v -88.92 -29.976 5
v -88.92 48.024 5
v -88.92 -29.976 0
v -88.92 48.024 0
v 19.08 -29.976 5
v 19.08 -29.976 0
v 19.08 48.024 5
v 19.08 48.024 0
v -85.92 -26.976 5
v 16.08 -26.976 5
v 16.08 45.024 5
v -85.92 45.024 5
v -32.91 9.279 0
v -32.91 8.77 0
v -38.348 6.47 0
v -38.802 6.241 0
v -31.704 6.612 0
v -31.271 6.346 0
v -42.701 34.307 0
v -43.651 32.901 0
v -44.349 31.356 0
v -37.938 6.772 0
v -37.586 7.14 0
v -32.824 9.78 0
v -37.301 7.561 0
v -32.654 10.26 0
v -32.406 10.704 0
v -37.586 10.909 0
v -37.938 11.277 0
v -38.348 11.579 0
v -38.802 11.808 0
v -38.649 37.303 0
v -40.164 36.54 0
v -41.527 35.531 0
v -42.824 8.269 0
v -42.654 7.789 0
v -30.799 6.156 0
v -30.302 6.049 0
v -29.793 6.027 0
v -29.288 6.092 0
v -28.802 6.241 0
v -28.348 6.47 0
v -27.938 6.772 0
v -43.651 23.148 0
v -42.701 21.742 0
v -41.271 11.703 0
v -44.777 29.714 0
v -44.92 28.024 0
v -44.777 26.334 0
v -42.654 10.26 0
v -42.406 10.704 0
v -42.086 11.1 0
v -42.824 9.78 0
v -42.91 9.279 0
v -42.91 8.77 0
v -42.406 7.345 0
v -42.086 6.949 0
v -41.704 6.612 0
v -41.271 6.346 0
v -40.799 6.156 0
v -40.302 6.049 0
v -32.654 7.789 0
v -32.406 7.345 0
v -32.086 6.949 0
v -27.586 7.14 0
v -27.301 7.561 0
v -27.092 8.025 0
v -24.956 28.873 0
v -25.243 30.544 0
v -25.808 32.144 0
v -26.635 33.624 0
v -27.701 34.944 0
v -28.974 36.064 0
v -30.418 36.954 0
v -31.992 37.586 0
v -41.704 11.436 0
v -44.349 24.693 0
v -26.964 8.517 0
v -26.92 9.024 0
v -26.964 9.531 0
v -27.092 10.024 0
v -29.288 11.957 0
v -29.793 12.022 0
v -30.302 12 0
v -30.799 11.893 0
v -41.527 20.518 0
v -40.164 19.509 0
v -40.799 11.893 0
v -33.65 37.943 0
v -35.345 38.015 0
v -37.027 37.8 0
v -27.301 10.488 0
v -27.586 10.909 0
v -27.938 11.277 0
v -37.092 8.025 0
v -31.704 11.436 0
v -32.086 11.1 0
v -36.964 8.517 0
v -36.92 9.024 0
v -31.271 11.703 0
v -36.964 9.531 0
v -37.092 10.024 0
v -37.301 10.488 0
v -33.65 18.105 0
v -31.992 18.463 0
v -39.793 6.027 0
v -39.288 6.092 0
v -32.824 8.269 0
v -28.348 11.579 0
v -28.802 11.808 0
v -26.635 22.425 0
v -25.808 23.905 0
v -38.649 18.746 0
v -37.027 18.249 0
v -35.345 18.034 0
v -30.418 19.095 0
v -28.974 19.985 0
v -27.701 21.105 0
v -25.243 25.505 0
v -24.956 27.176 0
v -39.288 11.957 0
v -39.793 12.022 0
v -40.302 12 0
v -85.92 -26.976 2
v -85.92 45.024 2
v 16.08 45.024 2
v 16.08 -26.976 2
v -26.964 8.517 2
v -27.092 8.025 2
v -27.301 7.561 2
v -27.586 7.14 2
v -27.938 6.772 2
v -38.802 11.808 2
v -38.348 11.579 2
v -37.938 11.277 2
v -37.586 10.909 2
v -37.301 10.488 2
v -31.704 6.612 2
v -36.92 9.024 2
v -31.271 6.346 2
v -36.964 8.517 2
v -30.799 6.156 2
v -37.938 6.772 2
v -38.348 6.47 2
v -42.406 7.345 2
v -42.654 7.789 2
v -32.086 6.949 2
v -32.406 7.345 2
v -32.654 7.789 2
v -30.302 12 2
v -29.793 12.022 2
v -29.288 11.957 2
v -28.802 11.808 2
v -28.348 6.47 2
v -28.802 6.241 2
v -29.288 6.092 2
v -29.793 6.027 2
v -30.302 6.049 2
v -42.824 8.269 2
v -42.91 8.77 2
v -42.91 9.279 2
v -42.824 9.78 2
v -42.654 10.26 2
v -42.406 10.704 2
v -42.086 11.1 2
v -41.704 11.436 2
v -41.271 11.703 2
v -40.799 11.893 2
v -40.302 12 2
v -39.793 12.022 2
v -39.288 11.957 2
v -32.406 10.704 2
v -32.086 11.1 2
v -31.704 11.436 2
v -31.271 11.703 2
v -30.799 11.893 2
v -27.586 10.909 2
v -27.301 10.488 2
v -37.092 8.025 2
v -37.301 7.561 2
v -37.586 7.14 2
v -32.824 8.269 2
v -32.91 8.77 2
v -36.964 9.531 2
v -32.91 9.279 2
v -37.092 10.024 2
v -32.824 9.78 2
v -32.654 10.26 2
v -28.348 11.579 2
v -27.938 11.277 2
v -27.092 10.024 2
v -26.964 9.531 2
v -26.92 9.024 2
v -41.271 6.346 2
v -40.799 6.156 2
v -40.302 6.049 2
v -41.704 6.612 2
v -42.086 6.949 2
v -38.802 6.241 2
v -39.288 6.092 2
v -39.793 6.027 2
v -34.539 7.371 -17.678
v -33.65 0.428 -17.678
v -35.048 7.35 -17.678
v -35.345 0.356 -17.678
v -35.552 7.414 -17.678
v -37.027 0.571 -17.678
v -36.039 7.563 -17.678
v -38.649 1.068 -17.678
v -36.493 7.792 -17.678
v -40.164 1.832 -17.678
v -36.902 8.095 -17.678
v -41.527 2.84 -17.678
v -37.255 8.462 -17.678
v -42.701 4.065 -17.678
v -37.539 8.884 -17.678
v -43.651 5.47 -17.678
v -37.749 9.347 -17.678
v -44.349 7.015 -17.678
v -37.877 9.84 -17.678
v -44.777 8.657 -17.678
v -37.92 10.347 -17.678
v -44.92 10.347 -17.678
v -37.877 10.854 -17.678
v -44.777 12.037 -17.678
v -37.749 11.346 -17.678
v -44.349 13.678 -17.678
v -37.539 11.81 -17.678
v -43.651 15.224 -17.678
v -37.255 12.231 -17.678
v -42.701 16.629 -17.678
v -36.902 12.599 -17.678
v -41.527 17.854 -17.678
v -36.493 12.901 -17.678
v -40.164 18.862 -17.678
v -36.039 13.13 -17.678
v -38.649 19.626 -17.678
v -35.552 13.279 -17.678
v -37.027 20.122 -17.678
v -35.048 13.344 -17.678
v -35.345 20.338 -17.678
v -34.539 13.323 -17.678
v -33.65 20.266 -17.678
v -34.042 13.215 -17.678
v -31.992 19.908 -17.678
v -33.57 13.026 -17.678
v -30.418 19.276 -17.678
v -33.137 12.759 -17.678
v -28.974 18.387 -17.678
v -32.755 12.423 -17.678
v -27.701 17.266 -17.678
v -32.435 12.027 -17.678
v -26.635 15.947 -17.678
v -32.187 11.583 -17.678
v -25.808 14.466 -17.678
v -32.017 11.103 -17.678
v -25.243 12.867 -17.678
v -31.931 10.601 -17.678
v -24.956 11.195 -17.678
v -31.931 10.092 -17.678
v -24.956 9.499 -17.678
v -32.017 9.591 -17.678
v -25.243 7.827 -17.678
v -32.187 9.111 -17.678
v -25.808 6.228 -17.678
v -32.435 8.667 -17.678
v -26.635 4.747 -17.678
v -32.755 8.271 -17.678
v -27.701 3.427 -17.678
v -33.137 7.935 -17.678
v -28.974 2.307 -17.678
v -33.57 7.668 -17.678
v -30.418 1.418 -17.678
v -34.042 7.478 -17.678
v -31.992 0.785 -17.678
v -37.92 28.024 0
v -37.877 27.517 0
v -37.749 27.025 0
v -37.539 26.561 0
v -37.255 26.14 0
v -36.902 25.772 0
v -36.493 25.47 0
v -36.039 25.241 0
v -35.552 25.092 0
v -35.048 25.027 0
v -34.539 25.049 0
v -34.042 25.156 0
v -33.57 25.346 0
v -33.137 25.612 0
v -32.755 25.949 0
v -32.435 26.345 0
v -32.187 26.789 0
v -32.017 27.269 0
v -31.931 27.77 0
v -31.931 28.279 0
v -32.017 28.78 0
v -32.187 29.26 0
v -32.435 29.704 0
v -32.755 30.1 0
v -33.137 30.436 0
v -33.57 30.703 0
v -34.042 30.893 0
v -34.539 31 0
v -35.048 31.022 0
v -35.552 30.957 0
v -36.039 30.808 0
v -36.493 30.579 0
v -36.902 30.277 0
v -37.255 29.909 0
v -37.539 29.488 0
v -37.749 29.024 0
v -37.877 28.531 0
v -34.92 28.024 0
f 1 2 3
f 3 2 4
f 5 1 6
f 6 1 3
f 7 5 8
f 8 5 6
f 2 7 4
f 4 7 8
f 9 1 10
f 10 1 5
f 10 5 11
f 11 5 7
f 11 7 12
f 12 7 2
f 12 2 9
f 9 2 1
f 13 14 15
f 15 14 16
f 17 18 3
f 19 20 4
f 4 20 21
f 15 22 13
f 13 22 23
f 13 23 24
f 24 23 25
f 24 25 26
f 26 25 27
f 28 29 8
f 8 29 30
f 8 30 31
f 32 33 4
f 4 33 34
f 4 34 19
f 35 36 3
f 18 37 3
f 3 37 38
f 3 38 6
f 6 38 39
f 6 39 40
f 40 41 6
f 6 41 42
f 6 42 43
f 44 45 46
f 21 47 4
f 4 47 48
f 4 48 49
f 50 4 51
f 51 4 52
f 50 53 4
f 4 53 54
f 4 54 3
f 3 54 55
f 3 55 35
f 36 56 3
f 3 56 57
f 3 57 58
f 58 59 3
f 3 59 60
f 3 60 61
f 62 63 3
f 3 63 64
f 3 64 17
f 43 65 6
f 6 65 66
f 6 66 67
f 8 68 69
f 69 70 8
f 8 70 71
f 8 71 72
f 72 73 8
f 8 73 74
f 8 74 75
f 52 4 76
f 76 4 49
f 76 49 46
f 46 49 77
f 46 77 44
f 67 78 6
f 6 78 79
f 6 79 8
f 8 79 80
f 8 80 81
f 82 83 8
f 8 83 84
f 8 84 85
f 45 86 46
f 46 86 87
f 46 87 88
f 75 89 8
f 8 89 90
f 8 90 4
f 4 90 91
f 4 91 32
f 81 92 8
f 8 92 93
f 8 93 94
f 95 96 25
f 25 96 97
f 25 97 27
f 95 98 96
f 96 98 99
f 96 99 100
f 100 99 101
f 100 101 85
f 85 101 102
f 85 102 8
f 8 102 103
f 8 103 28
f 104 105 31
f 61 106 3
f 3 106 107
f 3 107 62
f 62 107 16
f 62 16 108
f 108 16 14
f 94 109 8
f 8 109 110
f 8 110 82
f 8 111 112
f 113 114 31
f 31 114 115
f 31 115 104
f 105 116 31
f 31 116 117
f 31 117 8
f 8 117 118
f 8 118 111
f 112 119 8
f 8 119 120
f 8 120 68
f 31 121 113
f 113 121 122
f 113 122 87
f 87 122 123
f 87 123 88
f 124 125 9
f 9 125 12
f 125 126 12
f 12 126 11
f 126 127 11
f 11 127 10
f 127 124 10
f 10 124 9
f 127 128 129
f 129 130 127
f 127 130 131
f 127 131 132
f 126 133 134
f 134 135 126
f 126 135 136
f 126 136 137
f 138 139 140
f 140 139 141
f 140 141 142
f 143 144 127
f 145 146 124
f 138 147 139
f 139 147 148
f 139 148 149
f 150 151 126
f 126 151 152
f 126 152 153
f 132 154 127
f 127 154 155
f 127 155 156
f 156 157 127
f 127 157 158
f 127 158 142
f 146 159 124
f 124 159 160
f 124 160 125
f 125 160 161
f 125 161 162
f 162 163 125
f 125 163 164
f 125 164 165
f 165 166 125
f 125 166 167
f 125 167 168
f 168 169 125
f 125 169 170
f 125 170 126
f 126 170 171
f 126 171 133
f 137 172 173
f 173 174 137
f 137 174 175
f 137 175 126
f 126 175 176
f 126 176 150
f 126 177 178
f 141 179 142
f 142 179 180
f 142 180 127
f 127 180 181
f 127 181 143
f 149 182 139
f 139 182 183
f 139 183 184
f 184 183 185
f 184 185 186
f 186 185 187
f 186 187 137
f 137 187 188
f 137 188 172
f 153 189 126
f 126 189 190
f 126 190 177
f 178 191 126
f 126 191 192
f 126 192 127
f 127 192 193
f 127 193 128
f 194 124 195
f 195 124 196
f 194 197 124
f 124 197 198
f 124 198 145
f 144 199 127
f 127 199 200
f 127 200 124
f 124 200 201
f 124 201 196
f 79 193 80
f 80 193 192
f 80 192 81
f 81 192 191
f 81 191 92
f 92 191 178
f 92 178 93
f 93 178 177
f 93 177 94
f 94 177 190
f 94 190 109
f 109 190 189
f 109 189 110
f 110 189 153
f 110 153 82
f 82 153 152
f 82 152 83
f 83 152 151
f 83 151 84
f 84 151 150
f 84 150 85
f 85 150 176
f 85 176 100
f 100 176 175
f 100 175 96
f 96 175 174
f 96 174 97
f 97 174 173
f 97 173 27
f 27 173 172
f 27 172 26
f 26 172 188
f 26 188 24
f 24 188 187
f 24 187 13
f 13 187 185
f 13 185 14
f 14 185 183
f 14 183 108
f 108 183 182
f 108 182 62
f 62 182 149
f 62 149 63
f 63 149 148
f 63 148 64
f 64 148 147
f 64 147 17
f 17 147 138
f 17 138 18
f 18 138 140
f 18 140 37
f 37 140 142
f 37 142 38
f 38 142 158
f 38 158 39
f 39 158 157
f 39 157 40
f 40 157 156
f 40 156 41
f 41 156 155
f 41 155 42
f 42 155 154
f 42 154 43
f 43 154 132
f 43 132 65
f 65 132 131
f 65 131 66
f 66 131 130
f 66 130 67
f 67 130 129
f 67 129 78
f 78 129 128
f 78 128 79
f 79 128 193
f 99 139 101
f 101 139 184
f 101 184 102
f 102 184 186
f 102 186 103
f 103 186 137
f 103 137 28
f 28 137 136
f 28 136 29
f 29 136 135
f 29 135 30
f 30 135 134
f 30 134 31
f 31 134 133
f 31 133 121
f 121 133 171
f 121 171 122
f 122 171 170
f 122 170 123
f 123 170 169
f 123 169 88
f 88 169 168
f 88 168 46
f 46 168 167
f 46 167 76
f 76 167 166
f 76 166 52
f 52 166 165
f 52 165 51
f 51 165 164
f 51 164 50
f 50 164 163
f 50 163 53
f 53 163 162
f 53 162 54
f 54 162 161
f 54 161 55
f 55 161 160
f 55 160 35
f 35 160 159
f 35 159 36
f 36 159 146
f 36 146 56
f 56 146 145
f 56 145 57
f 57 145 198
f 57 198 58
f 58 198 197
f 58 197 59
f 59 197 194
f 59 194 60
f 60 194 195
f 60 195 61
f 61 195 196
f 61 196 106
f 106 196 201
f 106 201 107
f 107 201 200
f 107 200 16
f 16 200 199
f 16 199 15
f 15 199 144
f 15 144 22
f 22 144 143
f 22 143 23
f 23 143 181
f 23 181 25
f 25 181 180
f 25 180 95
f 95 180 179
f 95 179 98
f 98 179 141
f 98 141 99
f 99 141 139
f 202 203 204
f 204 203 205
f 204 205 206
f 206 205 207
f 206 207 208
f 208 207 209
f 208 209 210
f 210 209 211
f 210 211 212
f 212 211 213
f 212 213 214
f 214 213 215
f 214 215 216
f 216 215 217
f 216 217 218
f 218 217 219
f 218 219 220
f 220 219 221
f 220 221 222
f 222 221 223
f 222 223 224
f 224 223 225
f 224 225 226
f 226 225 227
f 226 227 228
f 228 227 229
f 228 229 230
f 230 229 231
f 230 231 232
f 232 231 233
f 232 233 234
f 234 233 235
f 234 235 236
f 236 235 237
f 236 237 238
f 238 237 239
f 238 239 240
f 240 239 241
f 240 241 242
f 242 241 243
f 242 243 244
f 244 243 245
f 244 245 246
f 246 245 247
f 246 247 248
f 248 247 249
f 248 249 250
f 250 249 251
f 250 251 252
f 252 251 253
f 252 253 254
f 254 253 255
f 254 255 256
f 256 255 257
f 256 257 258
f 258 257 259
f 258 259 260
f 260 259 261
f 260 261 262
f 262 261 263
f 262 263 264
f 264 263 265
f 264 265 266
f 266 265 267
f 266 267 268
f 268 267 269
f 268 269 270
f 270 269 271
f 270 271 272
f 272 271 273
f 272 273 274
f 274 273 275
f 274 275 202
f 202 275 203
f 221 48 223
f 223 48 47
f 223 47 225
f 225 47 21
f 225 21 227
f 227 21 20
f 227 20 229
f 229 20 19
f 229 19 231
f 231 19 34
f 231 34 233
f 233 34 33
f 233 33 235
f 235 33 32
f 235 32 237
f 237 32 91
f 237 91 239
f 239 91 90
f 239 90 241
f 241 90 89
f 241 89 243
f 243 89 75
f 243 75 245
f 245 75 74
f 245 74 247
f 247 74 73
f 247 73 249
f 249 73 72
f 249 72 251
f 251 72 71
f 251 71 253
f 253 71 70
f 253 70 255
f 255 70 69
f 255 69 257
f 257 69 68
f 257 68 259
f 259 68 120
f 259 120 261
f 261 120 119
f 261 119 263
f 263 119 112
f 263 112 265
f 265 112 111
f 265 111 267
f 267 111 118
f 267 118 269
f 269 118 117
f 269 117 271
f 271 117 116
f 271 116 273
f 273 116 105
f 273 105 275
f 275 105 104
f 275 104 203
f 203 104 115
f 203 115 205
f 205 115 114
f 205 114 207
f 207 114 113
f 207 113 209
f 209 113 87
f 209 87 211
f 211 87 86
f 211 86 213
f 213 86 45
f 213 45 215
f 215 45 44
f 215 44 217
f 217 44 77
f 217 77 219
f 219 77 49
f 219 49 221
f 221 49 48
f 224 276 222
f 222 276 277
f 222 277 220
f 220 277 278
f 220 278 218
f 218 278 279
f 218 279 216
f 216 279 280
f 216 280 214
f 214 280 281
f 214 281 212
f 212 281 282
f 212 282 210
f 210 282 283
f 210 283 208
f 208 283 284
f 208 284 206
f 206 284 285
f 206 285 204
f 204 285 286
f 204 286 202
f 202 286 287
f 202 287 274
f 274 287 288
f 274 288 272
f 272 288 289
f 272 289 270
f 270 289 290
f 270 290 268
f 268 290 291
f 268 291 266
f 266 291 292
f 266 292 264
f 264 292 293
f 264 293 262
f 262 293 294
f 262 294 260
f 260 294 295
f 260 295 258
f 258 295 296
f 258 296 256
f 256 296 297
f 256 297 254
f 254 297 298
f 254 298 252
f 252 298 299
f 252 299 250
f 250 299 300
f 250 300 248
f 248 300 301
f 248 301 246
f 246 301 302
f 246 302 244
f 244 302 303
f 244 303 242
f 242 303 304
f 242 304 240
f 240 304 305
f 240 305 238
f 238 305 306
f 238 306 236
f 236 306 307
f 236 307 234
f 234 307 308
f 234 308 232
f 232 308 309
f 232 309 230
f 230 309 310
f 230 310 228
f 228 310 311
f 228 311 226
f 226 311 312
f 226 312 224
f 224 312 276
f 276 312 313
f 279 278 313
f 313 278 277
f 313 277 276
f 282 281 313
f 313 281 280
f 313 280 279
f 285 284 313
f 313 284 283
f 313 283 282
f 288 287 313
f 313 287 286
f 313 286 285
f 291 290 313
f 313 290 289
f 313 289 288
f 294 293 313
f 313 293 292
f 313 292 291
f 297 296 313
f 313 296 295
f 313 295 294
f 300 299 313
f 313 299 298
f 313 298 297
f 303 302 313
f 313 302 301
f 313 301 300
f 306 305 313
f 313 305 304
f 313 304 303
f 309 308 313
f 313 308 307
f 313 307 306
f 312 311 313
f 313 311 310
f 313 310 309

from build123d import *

# Parameters (mm, degrees)
SKIZZE1_W                       = 108
SKIZZE1_H                       = 78
AUFSATZ_LINEAR_AUSTRAGEN1_DEPTH = 5
SKIZZE2_W                       = 102
SKIZZE2_H                       = 72
SCHNITT_LINEAR_AUSTRAGEN1_DEPTH = 3
SKIZZE3_R                       = 3
SCHNITT_LINEAR_AUSTRAGEN2_DEPTH = 3
SKIZZE4_R                       = 10
SKIZZE4_R_2                     = 3
AUFSATZ_LINEAR_AUSTRAGEN2_DEPTH = 25


with BuildPart() as part:
    # Skizze1 → Aufsatz-Linear austragen1 (new body)
    with BuildSketch(Plane.XY):
        with Locations((-34.920453515, 9.024489796)):
            Rectangle(SKIZZE1_W, SKIZZE1_H)
    extrude(amount=AUFSATZ_LINEAR_AUSTRAGEN1_DEPTH)

    # Skizze2 → Schnitt-Linear austragen1 (cut)
    with BuildSketch(Plane.XY.offset(5)):
        with Locations((-34.920453515, 9.024489796)):
            Rectangle(SKIZZE2_W, SKIZZE2_H)
    extrude(amount=-SCHNITT_LINEAR_AUSTRAGEN1_DEPTH, mode=Mode.SUBTRACT)

    # Skizze3 → Schnitt-Linear austragen2 (cut)
    with BuildSketch(Plane.XY.offset(2)):
        with Locations((-39.920453515, 9.024489796)):
            Circle(SKIZZE3_R)
        with Locations((-29.920453515, 9.024489796)):
            Circle(SKIZZE3_R)
    extrude(amount=-SCHNITT_LINEAR_AUSTRAGEN2_DEPTH, mode=Mode.SUBTRACT)

    # Skizze4 → Aufsatz-Linear austragen2 (add, along a direction that is not the sketch's normal)
    with BuildSketch(Plane(origin=(0, 0, 0), x_dir=(-1, 0, 0), z_dir=(0, 0, -1))):
        with Locations((34.920453515, 28.024489796)):
            Circle(SKIZZE4_R)
        with Locations((34.920453515, 28.024489796)):
            Circle(SKIZZE4_R_2, mode=Mode.SUBTRACT)
    extrude(amount=AUFSATZ_LINEAR_AUSTRAGEN2_DEPTH, dir=(0, -0.7071067811865538, -0.7071067811865414))


solid = part.part
